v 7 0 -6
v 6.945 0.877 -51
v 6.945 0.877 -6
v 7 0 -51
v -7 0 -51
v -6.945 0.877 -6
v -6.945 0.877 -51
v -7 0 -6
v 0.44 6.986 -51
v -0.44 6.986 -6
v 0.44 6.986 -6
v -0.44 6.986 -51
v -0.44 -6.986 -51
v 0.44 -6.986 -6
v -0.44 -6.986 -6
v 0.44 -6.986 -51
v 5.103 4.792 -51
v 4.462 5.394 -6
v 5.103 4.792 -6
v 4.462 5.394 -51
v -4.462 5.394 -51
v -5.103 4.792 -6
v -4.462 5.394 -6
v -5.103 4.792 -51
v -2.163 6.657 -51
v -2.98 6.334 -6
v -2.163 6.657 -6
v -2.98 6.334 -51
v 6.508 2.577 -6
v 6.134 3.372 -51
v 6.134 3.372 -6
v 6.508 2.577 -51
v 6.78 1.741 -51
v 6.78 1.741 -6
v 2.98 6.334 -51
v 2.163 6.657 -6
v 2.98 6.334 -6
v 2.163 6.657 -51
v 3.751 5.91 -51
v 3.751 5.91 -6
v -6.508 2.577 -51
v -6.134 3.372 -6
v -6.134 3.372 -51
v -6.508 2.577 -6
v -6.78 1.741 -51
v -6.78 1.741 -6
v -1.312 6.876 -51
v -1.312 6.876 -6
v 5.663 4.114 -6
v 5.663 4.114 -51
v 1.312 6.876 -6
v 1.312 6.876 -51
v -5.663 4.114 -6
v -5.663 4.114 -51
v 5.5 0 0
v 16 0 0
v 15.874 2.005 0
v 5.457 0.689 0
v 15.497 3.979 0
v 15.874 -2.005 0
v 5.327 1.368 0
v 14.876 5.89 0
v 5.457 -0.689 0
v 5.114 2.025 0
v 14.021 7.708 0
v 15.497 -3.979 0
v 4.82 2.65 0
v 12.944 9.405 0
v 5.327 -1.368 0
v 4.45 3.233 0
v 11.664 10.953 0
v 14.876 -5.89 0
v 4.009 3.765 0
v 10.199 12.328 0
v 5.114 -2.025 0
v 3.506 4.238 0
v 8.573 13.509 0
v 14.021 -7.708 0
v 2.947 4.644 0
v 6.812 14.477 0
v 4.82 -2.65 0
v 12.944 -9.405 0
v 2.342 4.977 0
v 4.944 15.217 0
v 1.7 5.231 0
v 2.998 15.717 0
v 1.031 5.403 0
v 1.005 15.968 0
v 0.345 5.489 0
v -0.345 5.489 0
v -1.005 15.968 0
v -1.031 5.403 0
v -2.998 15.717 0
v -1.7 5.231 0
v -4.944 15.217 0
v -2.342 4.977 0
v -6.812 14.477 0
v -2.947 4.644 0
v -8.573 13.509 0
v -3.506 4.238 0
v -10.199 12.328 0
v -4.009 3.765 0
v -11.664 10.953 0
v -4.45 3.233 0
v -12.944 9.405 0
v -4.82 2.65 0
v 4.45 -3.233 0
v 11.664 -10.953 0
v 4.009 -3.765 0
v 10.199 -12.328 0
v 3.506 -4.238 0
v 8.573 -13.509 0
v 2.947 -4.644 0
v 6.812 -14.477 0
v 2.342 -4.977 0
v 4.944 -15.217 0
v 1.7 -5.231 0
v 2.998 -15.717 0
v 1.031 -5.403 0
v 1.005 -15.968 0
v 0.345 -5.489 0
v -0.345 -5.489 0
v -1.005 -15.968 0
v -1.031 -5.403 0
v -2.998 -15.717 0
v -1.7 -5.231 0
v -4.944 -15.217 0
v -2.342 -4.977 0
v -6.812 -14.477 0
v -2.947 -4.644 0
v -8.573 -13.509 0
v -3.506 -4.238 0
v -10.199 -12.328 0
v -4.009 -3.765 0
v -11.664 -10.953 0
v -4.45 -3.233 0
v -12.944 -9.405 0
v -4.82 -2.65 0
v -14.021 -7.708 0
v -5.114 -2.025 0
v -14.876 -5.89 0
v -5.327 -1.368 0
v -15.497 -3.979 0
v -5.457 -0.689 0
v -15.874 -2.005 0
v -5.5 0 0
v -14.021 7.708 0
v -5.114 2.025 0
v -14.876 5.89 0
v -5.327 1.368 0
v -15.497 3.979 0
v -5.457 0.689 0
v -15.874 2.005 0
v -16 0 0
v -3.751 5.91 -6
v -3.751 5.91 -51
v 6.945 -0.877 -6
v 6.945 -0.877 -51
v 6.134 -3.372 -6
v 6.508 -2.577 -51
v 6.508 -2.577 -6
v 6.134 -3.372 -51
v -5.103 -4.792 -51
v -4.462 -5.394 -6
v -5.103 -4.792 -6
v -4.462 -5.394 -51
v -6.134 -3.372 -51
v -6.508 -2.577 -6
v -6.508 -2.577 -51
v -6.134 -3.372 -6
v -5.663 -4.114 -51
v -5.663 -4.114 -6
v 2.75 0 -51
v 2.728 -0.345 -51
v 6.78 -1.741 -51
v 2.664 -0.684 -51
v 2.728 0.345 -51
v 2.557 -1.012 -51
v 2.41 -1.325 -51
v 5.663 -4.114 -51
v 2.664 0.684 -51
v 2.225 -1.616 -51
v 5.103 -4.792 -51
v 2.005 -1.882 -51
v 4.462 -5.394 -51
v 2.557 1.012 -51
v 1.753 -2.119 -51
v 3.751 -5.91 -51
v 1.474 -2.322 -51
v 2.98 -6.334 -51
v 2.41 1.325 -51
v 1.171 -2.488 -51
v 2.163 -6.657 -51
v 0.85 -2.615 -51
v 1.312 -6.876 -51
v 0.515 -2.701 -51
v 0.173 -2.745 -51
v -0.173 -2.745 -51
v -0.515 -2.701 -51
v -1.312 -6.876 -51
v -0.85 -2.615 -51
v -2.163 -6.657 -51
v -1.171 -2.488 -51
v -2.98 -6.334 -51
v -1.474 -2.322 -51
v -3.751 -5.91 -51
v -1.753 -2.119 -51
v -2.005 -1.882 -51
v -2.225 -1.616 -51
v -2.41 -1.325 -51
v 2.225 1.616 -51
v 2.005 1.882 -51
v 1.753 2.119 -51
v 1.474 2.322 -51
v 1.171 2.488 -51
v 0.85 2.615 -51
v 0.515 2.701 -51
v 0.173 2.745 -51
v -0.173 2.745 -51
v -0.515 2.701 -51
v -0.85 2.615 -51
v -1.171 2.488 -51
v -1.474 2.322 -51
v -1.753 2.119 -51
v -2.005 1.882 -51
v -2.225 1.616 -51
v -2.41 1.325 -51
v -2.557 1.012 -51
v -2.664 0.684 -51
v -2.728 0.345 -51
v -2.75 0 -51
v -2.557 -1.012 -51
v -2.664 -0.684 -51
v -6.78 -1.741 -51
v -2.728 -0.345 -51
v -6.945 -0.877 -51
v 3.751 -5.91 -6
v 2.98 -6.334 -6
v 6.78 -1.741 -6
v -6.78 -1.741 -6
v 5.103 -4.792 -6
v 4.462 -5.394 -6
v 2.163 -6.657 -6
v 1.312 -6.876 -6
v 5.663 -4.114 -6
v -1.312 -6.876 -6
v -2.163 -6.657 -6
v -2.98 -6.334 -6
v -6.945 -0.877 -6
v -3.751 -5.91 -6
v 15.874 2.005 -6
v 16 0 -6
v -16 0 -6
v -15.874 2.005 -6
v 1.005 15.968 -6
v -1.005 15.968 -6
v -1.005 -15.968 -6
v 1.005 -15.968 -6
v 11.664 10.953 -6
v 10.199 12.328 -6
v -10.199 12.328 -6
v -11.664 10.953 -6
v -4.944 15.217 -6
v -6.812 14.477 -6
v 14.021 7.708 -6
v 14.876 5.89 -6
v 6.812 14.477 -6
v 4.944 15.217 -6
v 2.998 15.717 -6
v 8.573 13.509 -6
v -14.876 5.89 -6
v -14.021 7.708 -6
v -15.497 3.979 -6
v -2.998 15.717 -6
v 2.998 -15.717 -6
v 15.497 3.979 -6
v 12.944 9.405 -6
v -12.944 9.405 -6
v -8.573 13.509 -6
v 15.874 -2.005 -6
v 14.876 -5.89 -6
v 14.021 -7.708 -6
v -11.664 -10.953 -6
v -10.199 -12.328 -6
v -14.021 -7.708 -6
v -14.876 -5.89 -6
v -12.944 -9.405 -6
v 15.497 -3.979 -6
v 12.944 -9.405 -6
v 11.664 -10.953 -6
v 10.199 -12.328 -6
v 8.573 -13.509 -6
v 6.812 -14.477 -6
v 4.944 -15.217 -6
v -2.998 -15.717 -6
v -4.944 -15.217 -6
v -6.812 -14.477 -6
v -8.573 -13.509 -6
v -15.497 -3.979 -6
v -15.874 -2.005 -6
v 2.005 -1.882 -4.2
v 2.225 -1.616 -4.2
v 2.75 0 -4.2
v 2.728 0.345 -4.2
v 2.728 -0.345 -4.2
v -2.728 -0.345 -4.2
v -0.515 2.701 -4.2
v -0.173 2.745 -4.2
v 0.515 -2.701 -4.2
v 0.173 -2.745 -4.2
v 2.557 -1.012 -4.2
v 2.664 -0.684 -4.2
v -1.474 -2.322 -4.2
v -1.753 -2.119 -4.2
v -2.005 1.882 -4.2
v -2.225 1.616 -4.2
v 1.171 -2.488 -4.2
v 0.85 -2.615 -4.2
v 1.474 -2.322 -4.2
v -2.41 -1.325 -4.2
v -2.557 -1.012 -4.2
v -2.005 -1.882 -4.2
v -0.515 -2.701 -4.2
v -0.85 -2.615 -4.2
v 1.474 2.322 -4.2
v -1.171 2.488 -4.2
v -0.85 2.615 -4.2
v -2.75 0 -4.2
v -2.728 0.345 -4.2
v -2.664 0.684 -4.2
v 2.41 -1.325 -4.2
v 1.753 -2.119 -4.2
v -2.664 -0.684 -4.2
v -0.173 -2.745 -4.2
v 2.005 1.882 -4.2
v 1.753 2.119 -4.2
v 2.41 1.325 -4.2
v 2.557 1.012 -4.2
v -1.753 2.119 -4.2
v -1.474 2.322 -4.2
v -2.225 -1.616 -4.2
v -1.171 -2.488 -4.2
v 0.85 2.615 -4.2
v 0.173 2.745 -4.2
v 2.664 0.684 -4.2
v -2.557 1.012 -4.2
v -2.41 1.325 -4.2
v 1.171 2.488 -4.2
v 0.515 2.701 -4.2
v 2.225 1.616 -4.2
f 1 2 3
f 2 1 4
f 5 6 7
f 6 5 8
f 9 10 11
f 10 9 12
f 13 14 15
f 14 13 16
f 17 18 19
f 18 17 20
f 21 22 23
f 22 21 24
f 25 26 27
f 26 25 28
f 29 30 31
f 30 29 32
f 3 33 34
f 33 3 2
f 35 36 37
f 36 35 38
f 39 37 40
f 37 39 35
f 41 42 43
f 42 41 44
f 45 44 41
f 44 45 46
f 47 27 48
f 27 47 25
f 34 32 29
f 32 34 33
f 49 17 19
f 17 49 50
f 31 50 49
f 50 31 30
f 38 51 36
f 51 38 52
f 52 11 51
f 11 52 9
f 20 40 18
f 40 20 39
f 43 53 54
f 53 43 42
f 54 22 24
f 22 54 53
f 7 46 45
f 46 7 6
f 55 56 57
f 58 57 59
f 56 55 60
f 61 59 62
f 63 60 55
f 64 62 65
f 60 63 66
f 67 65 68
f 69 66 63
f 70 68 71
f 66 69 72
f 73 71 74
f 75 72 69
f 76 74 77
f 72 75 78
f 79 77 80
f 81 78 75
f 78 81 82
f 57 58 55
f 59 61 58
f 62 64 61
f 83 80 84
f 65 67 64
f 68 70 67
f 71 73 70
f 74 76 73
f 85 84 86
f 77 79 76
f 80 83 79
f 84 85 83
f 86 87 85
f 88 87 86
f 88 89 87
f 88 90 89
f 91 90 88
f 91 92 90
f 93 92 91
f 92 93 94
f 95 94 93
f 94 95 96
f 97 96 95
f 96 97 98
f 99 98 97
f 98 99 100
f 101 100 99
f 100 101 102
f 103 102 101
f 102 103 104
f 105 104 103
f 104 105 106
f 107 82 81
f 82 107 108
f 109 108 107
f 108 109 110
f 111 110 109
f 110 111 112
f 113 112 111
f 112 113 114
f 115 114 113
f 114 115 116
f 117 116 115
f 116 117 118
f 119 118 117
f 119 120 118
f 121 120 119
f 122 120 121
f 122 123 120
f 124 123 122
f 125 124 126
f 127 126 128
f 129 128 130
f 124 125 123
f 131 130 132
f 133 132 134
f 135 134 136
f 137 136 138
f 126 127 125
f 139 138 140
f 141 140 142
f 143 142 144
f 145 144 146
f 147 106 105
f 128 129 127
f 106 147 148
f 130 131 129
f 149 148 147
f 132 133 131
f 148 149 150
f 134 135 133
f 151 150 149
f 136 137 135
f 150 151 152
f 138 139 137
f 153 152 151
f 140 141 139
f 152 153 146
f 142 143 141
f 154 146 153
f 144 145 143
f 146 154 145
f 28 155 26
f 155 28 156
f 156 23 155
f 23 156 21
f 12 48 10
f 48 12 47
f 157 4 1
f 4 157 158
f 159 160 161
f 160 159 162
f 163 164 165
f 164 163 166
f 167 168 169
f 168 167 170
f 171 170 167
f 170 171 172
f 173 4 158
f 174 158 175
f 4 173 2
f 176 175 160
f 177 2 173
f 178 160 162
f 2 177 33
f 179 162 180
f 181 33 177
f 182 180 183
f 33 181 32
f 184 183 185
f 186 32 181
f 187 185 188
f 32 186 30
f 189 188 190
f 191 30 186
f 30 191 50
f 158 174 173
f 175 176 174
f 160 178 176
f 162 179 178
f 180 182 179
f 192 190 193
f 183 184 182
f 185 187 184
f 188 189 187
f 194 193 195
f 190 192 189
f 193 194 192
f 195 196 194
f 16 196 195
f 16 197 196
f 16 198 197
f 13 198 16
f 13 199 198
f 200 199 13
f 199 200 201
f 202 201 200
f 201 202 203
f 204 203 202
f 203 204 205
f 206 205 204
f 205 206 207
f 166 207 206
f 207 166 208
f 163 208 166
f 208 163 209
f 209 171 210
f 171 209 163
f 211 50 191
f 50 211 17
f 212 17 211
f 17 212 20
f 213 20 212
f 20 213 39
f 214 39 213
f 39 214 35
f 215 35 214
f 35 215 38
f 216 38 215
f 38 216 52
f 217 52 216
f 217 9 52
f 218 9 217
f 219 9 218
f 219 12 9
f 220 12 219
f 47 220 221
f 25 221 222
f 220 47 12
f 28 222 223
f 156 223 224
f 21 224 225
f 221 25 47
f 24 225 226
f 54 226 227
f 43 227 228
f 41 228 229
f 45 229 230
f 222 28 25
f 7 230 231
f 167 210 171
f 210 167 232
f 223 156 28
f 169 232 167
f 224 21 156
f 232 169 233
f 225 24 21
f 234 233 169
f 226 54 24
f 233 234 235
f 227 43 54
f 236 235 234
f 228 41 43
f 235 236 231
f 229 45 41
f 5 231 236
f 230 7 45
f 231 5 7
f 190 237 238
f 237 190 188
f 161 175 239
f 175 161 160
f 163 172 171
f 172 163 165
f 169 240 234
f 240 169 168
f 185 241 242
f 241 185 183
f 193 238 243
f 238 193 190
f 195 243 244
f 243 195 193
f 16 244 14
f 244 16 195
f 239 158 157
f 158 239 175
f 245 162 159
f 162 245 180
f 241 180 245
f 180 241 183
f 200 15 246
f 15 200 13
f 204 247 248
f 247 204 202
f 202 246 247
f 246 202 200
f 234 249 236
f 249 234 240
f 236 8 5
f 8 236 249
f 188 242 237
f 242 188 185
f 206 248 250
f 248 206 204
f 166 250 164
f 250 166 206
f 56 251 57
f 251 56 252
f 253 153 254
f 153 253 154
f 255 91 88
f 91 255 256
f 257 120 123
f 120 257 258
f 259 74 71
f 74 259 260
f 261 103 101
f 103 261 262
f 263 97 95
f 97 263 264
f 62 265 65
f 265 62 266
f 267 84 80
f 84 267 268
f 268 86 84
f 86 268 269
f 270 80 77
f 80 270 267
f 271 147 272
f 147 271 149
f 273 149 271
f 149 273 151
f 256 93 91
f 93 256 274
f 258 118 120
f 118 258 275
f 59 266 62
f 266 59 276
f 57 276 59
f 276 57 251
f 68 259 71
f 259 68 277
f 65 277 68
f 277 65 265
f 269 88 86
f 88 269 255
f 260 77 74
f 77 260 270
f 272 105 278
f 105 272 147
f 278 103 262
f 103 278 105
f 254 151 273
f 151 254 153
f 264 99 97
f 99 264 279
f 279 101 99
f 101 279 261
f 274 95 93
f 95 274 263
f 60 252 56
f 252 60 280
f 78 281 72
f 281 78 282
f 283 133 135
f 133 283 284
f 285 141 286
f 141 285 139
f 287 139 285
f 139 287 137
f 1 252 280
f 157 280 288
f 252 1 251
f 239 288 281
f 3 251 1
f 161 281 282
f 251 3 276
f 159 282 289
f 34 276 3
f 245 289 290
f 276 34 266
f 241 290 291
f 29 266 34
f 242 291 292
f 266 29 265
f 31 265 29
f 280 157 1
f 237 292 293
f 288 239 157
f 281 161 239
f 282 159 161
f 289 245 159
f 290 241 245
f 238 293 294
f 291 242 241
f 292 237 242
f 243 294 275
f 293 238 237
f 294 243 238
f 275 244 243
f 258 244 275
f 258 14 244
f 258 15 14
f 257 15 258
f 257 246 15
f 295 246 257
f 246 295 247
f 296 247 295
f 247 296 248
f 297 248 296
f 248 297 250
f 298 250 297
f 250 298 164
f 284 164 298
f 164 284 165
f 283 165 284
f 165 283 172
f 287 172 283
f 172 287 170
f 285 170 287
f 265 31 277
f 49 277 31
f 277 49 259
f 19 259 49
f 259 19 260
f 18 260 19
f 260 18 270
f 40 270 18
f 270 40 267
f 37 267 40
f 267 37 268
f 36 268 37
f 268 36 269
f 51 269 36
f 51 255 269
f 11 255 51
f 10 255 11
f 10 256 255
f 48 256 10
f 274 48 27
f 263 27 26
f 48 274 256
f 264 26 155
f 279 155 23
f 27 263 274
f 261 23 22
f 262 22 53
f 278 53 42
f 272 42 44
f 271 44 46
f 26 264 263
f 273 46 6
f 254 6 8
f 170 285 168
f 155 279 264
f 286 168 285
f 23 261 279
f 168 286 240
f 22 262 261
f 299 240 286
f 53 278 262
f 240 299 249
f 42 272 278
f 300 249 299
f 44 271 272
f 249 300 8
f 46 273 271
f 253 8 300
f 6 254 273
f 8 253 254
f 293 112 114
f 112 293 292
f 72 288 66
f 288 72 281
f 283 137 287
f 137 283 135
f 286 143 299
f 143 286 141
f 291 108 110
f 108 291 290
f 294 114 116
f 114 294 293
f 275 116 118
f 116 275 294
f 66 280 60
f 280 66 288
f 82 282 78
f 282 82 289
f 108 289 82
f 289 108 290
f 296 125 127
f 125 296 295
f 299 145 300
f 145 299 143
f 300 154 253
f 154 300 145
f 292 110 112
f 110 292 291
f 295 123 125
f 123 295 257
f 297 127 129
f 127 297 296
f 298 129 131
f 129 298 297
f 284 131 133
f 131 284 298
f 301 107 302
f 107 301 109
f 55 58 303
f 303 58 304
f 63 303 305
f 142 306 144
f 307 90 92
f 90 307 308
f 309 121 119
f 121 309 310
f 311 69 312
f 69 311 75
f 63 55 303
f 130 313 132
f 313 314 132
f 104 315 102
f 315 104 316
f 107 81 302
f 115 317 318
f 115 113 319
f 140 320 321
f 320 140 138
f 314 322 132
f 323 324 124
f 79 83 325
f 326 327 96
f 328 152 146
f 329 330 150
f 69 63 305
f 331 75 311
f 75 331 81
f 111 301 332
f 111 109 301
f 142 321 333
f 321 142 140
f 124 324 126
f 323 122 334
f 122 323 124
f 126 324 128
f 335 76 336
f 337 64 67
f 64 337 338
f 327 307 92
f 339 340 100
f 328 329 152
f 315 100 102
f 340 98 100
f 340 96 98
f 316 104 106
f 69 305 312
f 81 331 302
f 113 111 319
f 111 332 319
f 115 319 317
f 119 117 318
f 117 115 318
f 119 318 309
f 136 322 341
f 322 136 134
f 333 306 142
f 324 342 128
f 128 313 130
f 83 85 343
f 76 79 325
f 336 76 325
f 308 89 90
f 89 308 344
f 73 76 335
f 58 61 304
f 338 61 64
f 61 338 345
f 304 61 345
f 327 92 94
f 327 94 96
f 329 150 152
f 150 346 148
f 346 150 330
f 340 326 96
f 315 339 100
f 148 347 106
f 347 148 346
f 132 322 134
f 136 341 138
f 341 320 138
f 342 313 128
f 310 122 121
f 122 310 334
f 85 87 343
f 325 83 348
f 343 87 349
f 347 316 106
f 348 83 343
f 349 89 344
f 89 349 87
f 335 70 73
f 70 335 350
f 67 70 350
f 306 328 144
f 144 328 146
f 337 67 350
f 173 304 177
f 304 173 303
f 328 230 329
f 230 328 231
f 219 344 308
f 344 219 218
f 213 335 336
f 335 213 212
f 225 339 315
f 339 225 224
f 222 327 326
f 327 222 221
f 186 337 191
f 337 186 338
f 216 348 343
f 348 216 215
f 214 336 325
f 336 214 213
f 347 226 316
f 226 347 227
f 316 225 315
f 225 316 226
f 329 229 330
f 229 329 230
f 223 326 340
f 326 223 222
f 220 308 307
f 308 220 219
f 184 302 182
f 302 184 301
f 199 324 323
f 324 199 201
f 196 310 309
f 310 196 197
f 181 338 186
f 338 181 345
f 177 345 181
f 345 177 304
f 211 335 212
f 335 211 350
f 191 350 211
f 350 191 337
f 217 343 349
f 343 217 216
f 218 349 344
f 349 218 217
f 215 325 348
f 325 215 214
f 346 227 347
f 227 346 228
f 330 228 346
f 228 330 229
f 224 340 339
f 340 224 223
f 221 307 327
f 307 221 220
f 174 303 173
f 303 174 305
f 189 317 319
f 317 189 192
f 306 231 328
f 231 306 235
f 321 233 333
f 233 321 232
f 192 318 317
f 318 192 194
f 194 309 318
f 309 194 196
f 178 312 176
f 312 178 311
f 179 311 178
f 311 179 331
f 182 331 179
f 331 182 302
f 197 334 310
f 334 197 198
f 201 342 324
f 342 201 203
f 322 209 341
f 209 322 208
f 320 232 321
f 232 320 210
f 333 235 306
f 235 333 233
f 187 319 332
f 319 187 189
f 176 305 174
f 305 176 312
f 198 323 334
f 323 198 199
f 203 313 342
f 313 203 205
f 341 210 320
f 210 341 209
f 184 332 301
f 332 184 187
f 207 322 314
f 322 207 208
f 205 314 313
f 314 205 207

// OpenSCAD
$fn = 50;


difference() {
	union() {
		translate(v = [0, 0, -51.0000000000]) {
			cylinder(h = 51, r = 7.0000000000);
		}
		translate(v = [0, 0, -6.0000000000]) {
			cylinder(h = 6, r = 16.0000000000);
		}
	}
	union() {
		translate(v = [0, 0, 0]) {
			rotate(a = [0, 0, 0]) {
				difference() {
					union() {
						#translate(v = [0, 0, -51.0000000000]) {
							cylinder(h = 51, r = 2.2500000000);
						}
						#translate(v = [0, 0, -4.2000000000]) {
							cylinder(h = 4.2000000000, r1 = 2.7500000000, r2 = 5.5000000000);
						}
						#translate(v = [0, 0, -51.0000000000]) {
							cylinder(h = 51, r = 2.7500000000);
						}
						#translate(v = [0, 0, -51.0000000000]) {
							cylinder(h = 51, r = 2.2500000000);
						}
					}
					union();
				}
			}
		}
	}
}
